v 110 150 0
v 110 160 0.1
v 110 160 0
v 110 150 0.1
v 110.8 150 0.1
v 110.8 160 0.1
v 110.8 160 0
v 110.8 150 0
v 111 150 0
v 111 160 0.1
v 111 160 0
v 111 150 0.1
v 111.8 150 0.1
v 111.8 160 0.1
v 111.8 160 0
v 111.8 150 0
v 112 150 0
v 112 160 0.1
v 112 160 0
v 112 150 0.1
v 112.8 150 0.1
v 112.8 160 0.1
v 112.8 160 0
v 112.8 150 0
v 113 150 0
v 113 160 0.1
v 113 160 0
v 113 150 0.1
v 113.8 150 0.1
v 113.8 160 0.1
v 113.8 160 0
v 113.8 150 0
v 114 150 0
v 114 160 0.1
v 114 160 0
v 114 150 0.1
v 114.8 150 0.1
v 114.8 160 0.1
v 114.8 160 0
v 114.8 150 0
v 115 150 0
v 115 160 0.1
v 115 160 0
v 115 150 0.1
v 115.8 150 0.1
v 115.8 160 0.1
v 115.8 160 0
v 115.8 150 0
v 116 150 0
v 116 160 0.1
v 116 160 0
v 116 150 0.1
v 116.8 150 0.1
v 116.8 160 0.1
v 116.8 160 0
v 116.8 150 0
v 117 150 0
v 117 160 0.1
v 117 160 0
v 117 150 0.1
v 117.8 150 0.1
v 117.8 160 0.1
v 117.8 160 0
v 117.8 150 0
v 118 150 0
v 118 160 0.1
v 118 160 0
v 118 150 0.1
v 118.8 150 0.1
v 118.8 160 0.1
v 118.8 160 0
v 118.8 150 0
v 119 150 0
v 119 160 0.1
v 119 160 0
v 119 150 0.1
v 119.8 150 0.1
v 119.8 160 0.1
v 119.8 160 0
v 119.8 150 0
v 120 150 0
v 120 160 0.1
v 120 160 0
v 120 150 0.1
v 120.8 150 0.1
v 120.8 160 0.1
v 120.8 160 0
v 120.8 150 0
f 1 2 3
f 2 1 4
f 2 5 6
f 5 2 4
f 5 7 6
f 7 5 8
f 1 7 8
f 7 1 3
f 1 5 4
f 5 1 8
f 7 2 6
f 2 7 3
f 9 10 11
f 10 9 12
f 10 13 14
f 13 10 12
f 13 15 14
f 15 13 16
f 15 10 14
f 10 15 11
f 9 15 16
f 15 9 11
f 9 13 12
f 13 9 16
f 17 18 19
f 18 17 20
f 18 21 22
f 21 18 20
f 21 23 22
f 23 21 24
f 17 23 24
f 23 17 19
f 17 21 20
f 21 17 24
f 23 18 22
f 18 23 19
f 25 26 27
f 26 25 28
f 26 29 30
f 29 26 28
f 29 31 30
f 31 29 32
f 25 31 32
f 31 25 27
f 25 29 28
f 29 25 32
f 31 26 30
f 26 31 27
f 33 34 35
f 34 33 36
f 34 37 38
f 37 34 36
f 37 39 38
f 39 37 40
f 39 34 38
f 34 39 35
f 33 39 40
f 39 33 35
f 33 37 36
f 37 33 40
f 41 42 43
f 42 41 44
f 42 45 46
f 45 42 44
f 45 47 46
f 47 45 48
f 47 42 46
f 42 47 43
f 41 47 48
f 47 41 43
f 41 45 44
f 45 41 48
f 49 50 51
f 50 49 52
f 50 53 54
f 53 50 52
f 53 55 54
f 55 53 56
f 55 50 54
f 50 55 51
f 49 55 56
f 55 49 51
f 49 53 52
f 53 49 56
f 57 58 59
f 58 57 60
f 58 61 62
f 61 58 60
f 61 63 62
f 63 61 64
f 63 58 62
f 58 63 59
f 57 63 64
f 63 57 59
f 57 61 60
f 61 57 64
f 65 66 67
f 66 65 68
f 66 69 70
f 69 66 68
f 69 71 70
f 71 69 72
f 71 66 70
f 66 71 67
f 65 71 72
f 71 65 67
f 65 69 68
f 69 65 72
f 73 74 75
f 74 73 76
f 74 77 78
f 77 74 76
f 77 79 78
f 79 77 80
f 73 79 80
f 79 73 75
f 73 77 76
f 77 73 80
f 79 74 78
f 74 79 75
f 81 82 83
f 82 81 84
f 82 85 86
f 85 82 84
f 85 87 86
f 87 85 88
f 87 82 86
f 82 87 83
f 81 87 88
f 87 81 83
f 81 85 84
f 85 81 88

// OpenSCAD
translate([10+100,10+140,0])
        for (i = [0 : 10]){
            translate([i,0,0])
                cube(size = [0.8,10,0.1]);
    }
